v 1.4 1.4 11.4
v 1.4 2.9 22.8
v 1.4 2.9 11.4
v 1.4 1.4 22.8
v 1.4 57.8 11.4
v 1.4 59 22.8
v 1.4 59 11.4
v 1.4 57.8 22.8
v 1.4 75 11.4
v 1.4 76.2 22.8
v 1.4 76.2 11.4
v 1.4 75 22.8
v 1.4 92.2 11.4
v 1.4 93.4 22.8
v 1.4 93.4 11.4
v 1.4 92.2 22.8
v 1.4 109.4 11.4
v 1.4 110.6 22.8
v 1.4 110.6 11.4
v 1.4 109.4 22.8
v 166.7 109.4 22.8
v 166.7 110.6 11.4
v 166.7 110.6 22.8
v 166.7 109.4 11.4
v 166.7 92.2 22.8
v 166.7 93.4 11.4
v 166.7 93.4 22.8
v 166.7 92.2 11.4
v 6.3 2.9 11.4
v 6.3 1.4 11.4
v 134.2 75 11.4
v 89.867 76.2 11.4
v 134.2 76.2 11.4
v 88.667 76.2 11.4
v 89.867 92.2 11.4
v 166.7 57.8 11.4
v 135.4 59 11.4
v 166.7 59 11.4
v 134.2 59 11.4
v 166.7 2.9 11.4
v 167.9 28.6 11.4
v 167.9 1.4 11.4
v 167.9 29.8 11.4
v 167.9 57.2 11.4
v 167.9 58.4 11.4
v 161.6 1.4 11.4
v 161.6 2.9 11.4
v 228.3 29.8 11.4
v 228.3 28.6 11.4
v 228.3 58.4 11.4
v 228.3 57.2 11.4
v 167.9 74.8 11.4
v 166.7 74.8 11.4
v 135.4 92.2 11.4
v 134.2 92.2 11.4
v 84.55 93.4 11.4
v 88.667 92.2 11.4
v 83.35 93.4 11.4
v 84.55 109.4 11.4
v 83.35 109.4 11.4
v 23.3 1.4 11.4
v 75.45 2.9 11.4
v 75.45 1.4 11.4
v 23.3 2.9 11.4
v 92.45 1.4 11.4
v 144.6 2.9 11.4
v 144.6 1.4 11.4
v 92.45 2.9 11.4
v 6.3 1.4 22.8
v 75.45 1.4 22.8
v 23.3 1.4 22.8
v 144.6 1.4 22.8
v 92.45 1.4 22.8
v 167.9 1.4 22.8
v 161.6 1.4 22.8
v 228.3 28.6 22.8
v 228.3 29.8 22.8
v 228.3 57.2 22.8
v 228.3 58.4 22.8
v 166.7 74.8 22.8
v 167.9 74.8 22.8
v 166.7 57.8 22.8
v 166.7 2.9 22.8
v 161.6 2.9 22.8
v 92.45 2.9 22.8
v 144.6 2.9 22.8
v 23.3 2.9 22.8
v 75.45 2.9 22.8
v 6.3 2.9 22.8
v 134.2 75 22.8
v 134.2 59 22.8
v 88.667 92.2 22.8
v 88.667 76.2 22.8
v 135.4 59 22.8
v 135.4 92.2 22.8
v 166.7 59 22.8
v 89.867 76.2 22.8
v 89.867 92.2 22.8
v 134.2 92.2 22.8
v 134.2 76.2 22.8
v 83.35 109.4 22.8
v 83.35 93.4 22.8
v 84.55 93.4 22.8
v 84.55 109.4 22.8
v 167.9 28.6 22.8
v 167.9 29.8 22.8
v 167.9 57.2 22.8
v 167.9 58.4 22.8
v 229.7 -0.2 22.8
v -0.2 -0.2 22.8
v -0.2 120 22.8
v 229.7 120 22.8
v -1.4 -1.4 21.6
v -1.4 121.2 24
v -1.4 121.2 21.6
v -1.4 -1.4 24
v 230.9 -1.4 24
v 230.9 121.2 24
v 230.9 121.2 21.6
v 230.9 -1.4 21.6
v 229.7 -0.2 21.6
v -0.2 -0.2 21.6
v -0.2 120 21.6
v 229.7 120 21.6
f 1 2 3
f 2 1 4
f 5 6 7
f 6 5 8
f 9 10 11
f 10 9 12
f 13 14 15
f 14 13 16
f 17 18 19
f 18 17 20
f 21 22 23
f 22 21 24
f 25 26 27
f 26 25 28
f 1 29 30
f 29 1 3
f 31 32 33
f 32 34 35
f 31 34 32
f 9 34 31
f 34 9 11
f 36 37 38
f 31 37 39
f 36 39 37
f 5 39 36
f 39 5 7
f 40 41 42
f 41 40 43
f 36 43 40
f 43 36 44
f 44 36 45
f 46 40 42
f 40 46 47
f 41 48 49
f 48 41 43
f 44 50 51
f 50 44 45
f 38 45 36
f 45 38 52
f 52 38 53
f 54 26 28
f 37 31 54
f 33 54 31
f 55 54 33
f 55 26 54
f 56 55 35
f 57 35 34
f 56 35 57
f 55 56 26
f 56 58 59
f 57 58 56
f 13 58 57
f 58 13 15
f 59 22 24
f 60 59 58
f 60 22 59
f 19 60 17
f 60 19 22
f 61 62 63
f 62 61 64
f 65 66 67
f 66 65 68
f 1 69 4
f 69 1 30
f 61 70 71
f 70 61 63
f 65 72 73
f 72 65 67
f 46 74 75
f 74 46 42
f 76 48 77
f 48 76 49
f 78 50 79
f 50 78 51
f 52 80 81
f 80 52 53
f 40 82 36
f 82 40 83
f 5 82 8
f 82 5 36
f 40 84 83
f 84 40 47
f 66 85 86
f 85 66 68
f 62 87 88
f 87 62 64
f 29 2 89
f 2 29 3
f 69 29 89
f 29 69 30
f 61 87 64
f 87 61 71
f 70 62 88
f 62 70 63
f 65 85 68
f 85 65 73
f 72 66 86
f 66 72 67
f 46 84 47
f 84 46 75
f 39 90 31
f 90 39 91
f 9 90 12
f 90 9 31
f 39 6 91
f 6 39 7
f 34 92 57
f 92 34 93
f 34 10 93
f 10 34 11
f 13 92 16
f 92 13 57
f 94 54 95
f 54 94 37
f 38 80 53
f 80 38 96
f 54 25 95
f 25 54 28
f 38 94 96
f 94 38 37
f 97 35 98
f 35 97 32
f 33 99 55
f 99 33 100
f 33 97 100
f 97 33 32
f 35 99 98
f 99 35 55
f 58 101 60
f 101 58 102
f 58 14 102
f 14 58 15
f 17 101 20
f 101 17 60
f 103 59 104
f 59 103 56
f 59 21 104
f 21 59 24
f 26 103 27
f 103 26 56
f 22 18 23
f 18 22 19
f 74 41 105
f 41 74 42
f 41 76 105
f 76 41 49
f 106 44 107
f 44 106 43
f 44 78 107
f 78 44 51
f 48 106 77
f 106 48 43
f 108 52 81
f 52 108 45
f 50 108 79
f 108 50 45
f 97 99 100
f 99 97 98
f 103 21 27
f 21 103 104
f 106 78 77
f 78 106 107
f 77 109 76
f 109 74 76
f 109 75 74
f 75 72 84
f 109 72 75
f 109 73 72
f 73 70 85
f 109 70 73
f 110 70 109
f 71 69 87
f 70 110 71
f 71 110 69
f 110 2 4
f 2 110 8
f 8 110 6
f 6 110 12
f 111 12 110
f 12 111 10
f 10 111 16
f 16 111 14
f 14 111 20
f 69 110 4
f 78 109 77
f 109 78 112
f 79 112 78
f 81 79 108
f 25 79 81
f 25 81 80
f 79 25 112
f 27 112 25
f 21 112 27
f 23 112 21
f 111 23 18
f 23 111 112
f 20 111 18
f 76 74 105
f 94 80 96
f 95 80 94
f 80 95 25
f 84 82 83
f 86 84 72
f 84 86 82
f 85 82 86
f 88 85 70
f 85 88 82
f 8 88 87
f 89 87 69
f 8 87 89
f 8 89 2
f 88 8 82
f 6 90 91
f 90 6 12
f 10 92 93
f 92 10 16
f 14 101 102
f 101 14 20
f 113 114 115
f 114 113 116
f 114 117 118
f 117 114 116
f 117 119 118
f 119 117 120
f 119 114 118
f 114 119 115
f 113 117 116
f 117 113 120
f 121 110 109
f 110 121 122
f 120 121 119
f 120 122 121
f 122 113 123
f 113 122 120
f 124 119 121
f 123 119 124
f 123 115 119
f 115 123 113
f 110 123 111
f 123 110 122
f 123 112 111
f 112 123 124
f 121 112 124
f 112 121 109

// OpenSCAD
generate_box = false;//true to generate box, false for lid

//breadboard size
length = 165.1; //longer side of the breadboard
width = 54.5; //shorter side of the breadboard. Include dovetails if it exists.
height = 10; //height of the breadboard

dovetail_width = 1.5; //width of the dovetailes sticking out on the longer side
front_dovetail = true; //true if you want the dovetail sticking out on the long side to be facing you. 

//jumper wires. Makes 7 compartments based on these numberes
long_wire = 128; //longest jumper wire in the set plus. Must be decently shorter than length of the breadboard.
wire_height = 8; //length of the bent part of the wire

wire_clearance = 5; //minimum extra width for jumper wires

//batteries. 2 x 9V, 1 x AA
AA_diameter = 16;
9V_Width = 27;
battery_length = 60; //length of battery including clearence for fingers for both battery types

//misc
clearence = 0.2; //general clearence for misc components
wall_width = 1.2; //width of walls
max_height = 20; //max height of the contents of the box

//constants with clearence
Clength = length + clearence*2;
Cwidth = width + clearence*2;
Cheight = height + clearence;
Cdovetail_width = dovetail_width + clearence;

Clong_wire = long_wire + wire_clearance;
Cwire_height = wire_height*2;

CAA_diameter = AA_diameter + clearence*2;
C9V_Width = 9V_Width + clearence*2;
Cbattery_length = battery_length + clearence*2;

Cmax_height = max_height + clearence*2;

//Other calculated
TLength = Clength + Cbattery_length + wall_width*3; //total length
TWidth = Cwidth + Cdovetail_width + Cwire_height*3 + wire_height + wall_width*6; //total width
THeight = Cmax_height + wall_width*2; //total height

if (generate_box == true) { //generate box
    difference () { //cut away sections from main body
        cube([TLength, TWidth, THeight]); //main body
        
        if(front_dovetail == true) {
            translate([wall_width, wall_width + Cdovetail_width, wall_width]) { //breadboard
                cube([Clength, Cwidth, THeight]); 
                translate([Cdovetail_width*3, -Cdovetail_width, 0]) { //dovetail cutoff
                    cube([Cdovetail_width*10, Cdovetail_width, THeight]);
                }
                translate([Clength/2-Cdovetail_width*5, -Cdovetail_width, 0]) {
                    cube([Cdovetail_width*10, Cdovetail_width, THeight]);
                }
                translate([Clength-Cdovetail_width*3-Cdovetail_width*10, -Cdovetail_width, 0]) {
                    cube([Cdovetail_width*10, Cdovetail_width, THeight]);
                }
            }
        } else {
            translate([wall_width, wall_width, wall_width]) { //breadboard
                cube([Clength, Cwidth, THeight]); 
                translate([Cdovetail_width*3, Cwidth, 0]) { //dovetail cutoff
                    cube([Cdovetail_width*10, Cdovetail_width, THeight]);
                }
                translate([Clength/2-Cdovetail_width*5, Cwidth, 0]) {
                    cube([Cdovetail_width*10, Cdovetail_width, THeight]);
                }
                translate([Clength-Cdovetail_width*3-Cdovetail_width*10, Cwidth, 0]) {
                    cube([Cdovetail_width*10, Cdovetail_width, THeight]);
                }
            }
        }
        translate([wall_width, wall_width, wall_width + Cheight]) { //top of breadboard
            cube([Clength, Cwidth + Cdovetail_width, THeight]);
        }
        
        translate([wall_width, wall_width + Cdovetail_width + Cwidth + wall_width, wall_width]) { //jumper wire and other long compartments
            cube([Clong_wire, Cwire_height, THeight]);
            translate([0, wall_width + Cwire_height, 0]) {
                cube([Clong_wire*2/3 - wall_width, Cwire_height, THeight]);
            }
            translate([Clong_wire + wall_width, 0, 0]) {
                cube([Clength - Clong_wire - wall_width, Cwire_height * 2 + wall_width, THeight]);
            }
            translate([Clong_wire*2/3, wall_width + Cwire_height, 0]) {
                cube([Clong_wire*1/3, Cwire_height, THeight]);
            }
            translate([0, wall_width + Cwire_height*2 + wall_width, 0]) {
                cube([Clength/2 - wall_width/2, Cwire_height, THeight]);
            }
            translate([Clength/2 + wall_width/2, wall_width + Cwire_height*2 + wall_width, 0]) {
                cube([Clength/2 - wall_width/2, Cwire_height, THeight]);
            }
            translate([0, wall_width + Cwire_height*3 + wall_width*2, 0]) {
                cube([Clength, wire_height, THeight]);
            }
        }
        translate([wall_width, wall_width + Cdovetail_width + Cwidth, wall_width + Cheight]) { //top of jumperes
            cube([Clength, Cwidth + Cdovetail_width + wall_width, THeight]);
        }
        
        translate([Clength + wall_width*2, wall_width, wall_width]) { //batteries
            cube([Cbattery_length, C9V_Width, THeight]);
            translate([0, C9V_Width + wall_width, 0]) {
            cube([Cbattery_length, C9V_Width, THeight]);
            }
            translate([0, C9V_Width*2 + wall_width*2, 0]) {
            cube([Cbattery_length, CAA_diameter, THeight]);
            }
        }
        translate([Clength + wall_width, wall_width, wall_width + Cheight]) { //top of batteries
            cube([Cbattery_length + wall_width, C9V_Width*2 + wall_width*2 + CAA_diameter, THeight]);
        }
        
        translate([Clength + wall_width*2, C9V_Width*2 + wall_width*4 + CAA_diameter, wall_width]) { //misc parts
            cube([Cbattery_length, TWidth - (C9V_Width*2 + wall_width*5 + CAA_diameter), THeight]);
        }
    }
} else { //generate lid
    translate([-wall_width - clearence, -wall_width - clearence, THeight]) { //lid
                cube([TLength + wall_width*2 + clearence*2, TWidth + wall_width*2 + clearence*2, wall_width]);
    }
    translate([-wall_width - clearence, -wall_width - clearence, THeight - wall_width]) { //ledge
                cube([TLength + wall_width*2 + clearence*2, wall_width, wall_width]);
    }
    translate([-wall_width - clearence, -wall_width - clearence, THeight - wall_width]) { 
                cube([wall_width, TWidth + wall_width*2 + clearence*2, wall_width]);
    }
    translate([-wall_width - clearence, TWidth + clearence, THeight - wall_width]) { //ledge
                cube([TLength + wall_width*2 + clearence*2, wall_width, wall_width]);
    }
    translate([TLength + clearence, -wall_width - clearence, THeight - wall_width]) { 
                cube([wall_width, TWidth + wall_width*2 + clearence*2, wall_width]);
    }
    intersection() {
        union() {
            translate([wall_width + clearence, wall_width + clearence, wall_width + Cheight]) { //top of breadboard
                cube([Clength - clearence, Cwidth + Cdovetail_width - clearence, THeight]);
            }
            translate([wall_width + clearence, wall_width + Cdovetail_width + Cwidth, wall_width + Cheight]) { //top of jumperes
                cube([Clength - clearence, Cwidth + Cdovetail_width + wall_width, THeight]);
            }
            translate([Clength + wall_width, wall_width + clearence, wall_width + Cheight]) { //top of batteries
                cube([Cbattery_length + wall_width, C9V_Width*2 + wall_width*2 + CAA_diameter - clearence, THeight]);
            }
        }
        
        difference () { //cut away sections from main body
            cube([TLength, TWidth, THeight]); //main body
            
            if(front_dovetail == true) {
                translate([wall_width, wall_width + Cdovetail_width, wall_width]) { //breadboard
                    cube([Clength, Cwidth, THeight]); 
                    translate([Cdovetail_width*3, -Cdovetail_width, 0]) { //dovetail cutoff
                        cube([Cdovetail_width*10, Cdovetail_width, THeight]);
                    }
                    translate([Clength/2-Cdovetail_width*5, -Cdovetail_width, 0]) {
                        cube([Cdovetail_width*10, Cdovetail_width, THeight]);
                    }
                    translate([Clength-Cdovetail_width*3-Cdovetail_width*10, -Cdovetail_width, 0]) {
                        cube([Cdovetail_width*10, Cdovetail_width, THeight]);
                    }
                }
            } else {
                translate([wall_width, wall_width, wall_width]) { //breadboard
                    cube([Clength, Cwidth, THeight]); 
                    translate([Cdovetail_width*3, Cwidth, 0]) { //dovetail cutoff
                        cube([Cdovetail_width*10, Cdovetail_width, THeight]);
                    }
                    translate([Clength/2-Cdovetail_width*5, Cwidth, 0]) {
                        cube([Cdovetail_width*10, Cdovetail_width, THeight]);
                    }
                    translate([Clength-Cdovetail_width*3-Cdovetail_width*10, Cwidth, 0]) {
                        cube([Cdovetail_width*10, Cdovetail_width, THeight]);
                    }
                }
            }
            
            translate([wall_width, wall_width + Cdovetail_width + Cwidth + wall_width, wall_width]) { //jumper wire and other long compartments
                cube([Clong_wire, Cwire_height, THeight]);
                translate([0, wall_width + Cwire_height, 0]) {
                    cube([Clong_wire*2/3 - wall_width, Cwire_height, THeight]);
                }
                translate([Clong_wire + wall_width, 0, 0]) {
                    cube([Clength - Clong_wire - wall_width, Cwire_height * 2 + wall_width, THeight]);
                }
                translate([Clong_wire*2/3, wall_width + Cwire_height, 0]) {
                    cube([Clong_wire*1/3, Cwire_height, THeight]);
                }
                translate([0, wall_width + Cwire_height*2 + wall_width, 0]) {
                    cube([Clength/2 - wall_width/2, Cwire_height, THeight]);
                }
                translate([Clength/2 + wall_width/2, wall_width + Cwire_height*2 + wall_width, 0]) {
                    cube([Clength/2 - wall_width/2, Cwire_height, THeight]);
                }
                translate([0, wall_width + Cwire_height*3 + wall_width*2, 0]) {
                    cube([Clength, wire_height, THeight]);
                }
            }
            
            translate([Clength + wall_width*2, wall_width, wall_width]) { //batteries
                cube([Cbattery_length, C9V_Width, THeight]);
                translate([0, C9V_Width + wall_width, 0]) {
                cube([Cbattery_length, C9V_Width, THeight]);
                }
                translate([0, C9V_Width*2 + wall_width*2, 0]) {
                cube([Cbattery_length, CAA_diameter, THeight]);
                }
            }
            
            translate([Clength + wall_width*2, C9V_Width*2 + wall_width*4 + CAA_diameter, wall_width]) { //misc parts
                cube([Cbattery_length, TWidth - (C9V_Width*2 + wall_width*5 + CAA_diameter), THeight]);
            }
        }
    }
}
